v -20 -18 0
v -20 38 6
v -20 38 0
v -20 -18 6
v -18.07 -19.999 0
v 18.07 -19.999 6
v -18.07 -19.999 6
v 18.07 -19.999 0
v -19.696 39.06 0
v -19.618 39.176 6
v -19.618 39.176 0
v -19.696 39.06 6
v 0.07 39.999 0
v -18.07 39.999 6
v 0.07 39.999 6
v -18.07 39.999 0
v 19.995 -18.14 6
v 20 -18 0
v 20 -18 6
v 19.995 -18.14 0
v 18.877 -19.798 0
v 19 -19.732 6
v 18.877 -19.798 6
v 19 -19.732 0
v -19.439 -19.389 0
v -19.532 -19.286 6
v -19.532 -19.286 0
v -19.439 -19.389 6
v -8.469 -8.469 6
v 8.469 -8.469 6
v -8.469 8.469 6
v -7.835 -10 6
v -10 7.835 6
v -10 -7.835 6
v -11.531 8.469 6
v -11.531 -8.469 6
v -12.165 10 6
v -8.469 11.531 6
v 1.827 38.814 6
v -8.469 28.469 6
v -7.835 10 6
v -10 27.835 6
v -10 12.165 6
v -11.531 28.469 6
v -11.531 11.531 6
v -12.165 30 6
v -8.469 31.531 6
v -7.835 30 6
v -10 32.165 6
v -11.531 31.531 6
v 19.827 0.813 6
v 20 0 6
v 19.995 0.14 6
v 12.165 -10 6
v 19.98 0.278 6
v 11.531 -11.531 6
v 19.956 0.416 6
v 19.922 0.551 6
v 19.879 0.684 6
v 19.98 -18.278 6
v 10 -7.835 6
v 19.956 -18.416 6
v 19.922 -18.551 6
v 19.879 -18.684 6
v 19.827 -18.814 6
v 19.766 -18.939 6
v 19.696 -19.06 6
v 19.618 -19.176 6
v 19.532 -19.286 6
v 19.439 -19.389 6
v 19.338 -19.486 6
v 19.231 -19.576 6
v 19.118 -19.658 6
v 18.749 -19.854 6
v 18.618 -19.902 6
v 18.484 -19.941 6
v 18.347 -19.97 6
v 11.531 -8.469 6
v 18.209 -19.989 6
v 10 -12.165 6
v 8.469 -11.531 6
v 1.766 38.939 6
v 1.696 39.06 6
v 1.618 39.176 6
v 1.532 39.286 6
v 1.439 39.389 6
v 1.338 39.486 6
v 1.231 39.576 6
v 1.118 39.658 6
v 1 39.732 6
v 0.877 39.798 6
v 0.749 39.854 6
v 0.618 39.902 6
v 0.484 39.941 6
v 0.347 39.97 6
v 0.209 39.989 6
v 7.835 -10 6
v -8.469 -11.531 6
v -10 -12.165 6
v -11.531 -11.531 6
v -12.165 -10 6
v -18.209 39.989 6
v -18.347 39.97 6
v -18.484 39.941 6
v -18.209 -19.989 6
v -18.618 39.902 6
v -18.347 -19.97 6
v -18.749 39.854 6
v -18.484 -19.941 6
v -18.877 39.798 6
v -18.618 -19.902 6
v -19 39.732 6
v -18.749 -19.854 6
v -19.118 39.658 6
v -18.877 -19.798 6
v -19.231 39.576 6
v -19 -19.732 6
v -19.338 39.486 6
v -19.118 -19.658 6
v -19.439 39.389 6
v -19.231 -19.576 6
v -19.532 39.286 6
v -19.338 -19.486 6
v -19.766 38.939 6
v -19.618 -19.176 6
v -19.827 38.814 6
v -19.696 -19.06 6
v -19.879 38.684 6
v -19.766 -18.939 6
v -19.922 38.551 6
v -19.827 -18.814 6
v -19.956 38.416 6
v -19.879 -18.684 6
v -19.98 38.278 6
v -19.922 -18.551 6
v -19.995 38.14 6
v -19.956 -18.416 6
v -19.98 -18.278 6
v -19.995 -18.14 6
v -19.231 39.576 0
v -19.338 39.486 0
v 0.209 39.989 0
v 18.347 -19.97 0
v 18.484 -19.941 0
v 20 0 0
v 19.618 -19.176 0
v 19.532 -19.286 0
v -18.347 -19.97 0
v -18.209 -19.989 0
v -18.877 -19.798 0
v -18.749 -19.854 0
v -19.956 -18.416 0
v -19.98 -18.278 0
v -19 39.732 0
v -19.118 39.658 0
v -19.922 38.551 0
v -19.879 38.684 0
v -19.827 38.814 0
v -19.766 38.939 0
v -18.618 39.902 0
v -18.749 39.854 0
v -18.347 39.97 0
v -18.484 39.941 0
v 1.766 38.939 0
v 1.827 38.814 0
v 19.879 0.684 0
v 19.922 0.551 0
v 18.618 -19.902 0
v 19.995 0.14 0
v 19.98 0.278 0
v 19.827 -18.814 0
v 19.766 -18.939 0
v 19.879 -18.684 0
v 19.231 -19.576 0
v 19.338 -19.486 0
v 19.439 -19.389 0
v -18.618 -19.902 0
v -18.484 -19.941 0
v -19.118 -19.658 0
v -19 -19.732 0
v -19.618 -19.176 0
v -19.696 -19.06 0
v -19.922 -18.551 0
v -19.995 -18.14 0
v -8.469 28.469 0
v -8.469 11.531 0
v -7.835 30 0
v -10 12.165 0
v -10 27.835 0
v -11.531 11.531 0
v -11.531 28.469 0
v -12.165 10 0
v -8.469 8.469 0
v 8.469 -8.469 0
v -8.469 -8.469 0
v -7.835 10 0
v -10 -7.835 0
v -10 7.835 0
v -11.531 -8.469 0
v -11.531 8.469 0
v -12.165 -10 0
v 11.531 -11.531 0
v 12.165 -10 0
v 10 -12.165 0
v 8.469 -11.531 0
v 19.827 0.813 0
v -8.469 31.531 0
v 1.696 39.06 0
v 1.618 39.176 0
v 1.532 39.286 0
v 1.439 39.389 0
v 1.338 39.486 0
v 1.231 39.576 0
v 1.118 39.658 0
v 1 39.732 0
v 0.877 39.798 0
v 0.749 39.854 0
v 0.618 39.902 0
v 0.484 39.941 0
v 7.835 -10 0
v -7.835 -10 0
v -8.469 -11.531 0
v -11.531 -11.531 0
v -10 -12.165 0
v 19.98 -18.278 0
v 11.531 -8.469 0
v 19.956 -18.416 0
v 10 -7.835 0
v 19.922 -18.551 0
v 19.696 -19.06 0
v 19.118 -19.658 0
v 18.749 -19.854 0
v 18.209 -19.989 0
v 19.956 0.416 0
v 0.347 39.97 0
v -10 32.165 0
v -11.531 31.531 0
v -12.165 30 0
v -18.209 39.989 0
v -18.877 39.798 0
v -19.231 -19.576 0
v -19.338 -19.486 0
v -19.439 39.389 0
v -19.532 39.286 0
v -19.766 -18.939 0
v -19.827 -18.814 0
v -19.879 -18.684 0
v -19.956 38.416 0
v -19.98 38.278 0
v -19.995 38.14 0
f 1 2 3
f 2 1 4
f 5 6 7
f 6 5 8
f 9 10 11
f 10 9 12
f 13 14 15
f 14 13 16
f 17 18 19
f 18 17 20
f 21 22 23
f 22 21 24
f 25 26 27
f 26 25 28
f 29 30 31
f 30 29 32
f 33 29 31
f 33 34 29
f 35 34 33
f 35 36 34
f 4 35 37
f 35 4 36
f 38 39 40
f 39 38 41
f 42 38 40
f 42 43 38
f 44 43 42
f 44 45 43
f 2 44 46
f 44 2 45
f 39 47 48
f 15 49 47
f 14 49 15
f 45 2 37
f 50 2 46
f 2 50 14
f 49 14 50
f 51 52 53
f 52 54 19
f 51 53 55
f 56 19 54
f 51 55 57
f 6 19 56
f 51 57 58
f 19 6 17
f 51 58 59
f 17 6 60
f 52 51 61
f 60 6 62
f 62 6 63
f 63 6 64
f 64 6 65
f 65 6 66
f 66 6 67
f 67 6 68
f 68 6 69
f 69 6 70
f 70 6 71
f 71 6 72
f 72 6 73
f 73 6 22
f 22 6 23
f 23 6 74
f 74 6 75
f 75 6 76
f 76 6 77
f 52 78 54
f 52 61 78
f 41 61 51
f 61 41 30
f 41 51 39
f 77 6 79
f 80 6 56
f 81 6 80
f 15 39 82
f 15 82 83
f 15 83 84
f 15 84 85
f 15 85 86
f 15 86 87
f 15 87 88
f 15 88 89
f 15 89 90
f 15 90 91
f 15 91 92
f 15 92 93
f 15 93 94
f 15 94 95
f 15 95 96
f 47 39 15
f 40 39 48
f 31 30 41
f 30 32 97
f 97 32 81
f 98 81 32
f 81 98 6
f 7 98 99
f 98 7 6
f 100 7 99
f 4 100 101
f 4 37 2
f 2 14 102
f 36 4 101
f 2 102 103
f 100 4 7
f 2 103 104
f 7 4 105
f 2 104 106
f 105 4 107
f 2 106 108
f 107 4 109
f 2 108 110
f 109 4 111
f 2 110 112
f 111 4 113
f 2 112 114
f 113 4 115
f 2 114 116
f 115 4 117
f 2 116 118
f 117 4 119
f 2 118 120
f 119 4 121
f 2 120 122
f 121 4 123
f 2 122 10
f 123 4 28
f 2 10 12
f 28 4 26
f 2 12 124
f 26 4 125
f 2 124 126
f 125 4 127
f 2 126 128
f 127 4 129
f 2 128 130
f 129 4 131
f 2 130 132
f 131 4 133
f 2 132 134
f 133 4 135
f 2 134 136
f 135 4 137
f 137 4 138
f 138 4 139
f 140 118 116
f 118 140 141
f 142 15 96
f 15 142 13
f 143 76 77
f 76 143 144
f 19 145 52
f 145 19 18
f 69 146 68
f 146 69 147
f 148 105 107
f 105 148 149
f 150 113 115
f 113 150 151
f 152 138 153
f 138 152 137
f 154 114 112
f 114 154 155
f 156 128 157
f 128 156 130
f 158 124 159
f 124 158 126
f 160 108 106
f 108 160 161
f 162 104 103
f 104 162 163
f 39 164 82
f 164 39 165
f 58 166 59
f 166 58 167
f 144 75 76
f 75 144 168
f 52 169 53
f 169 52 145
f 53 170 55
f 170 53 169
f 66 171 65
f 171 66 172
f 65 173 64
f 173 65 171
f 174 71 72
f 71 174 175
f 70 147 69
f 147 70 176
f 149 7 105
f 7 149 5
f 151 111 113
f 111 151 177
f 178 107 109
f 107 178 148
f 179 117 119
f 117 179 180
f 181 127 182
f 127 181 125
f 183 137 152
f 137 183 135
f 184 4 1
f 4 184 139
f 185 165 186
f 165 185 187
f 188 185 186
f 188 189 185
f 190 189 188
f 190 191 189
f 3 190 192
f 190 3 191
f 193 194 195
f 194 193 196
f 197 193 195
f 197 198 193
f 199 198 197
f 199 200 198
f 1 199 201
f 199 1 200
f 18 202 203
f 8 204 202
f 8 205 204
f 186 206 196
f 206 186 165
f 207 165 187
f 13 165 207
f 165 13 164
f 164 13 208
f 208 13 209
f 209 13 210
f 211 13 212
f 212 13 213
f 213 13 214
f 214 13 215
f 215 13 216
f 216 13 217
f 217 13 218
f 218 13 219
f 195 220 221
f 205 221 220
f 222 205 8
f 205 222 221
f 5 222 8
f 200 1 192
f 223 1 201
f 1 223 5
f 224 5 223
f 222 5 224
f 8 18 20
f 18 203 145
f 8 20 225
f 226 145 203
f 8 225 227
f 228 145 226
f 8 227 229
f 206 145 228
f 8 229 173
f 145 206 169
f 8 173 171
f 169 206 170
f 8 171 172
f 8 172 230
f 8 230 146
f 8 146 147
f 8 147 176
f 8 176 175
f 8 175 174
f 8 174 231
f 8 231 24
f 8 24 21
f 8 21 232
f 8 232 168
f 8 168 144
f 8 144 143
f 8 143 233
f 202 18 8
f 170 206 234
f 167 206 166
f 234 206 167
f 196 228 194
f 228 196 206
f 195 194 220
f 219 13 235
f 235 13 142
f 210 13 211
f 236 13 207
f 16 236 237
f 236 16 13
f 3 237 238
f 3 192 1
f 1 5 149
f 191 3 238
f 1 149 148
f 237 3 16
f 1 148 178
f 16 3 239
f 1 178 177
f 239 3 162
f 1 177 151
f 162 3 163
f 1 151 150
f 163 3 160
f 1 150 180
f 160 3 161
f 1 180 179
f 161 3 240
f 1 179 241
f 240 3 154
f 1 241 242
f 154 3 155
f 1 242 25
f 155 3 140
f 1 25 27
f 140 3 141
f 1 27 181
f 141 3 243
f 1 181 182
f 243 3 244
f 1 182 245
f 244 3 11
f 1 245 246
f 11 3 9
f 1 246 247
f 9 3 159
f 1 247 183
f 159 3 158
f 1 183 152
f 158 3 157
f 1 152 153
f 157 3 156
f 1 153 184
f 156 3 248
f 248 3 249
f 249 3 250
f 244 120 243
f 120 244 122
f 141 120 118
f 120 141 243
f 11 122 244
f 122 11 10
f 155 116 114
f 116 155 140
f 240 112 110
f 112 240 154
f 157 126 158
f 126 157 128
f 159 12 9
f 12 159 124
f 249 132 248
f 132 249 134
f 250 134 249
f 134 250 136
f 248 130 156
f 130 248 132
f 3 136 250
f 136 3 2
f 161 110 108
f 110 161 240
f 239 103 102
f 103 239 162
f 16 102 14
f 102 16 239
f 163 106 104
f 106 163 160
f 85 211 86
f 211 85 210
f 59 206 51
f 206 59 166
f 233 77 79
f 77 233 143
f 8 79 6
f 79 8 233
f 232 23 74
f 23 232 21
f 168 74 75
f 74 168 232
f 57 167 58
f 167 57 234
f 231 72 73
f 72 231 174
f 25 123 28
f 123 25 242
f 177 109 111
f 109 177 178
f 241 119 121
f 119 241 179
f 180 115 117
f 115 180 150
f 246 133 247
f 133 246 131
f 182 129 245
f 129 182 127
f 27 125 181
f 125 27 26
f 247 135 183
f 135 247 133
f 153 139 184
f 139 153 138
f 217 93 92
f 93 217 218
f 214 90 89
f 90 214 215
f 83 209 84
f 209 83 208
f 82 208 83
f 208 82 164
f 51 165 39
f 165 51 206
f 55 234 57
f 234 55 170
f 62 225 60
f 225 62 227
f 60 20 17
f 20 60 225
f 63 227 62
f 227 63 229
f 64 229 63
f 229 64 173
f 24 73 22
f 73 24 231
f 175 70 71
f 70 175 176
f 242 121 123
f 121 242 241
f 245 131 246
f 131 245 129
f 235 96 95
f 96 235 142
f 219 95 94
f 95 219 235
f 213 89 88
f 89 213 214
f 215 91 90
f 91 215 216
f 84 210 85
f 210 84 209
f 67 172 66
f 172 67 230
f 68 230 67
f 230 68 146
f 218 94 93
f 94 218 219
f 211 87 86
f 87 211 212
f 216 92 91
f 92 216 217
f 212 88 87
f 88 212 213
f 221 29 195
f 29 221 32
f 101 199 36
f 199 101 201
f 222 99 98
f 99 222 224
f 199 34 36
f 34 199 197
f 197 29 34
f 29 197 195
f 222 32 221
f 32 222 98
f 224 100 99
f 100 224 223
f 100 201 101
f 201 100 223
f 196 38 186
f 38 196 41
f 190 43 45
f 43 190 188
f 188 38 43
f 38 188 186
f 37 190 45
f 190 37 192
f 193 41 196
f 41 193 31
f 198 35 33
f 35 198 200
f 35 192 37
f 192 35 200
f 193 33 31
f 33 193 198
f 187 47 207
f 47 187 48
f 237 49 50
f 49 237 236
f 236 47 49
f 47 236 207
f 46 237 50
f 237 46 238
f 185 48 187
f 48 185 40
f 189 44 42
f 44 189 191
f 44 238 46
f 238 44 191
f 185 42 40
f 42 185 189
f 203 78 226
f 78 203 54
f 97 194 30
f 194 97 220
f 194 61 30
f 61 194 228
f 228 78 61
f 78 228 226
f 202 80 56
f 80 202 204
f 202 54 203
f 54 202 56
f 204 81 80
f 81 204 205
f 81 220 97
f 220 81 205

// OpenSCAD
// file: polyhole.scad
// The Cylinder is dead! Long live the Cylinder!
// A module for a polyhole by radius, based on Nophead's work.

module polyhole(h, r, cent = false)
{
    n = max(round(4 * r), 3);
    cylinder(h = h, r = r / cos(180 / n), $fn = n, center = cent);
}
// main file
// Corner brace

use<polyhole.scad>

CornerBraceSmall();

module CornerBraceSmall()
{
    difference()
    {
        hull()
        {
            translate([-20+2, -20+2, 0])
                cylinder(h = 6, r = 2, $fn = 90);
            translate([-20+2, 40-2, 0])
                cylinder(h = 6, r = 2, $fn = 90);
            translate([20-2, -20+2, 0])
                cylinder(h = 6, r = 2, $fn = 90);
            translate([0, 40-2, 0])
                cylinder(h = 6, r = 2, $fn = 90);
            translate([20-2, 0, 0])
                cylinder(h = 6, r = 2, $fn = 90);
        }
        translate([-10, -10, 0])
            polyhole(6, 2);
        translate([-10, 10, 0])
            polyhole(6, 2);
        translate([-10, 30, 0])
            polyhole(6, 2);
        translate([10, -10, 0])
            polyhole(6, 2);
    }
}
